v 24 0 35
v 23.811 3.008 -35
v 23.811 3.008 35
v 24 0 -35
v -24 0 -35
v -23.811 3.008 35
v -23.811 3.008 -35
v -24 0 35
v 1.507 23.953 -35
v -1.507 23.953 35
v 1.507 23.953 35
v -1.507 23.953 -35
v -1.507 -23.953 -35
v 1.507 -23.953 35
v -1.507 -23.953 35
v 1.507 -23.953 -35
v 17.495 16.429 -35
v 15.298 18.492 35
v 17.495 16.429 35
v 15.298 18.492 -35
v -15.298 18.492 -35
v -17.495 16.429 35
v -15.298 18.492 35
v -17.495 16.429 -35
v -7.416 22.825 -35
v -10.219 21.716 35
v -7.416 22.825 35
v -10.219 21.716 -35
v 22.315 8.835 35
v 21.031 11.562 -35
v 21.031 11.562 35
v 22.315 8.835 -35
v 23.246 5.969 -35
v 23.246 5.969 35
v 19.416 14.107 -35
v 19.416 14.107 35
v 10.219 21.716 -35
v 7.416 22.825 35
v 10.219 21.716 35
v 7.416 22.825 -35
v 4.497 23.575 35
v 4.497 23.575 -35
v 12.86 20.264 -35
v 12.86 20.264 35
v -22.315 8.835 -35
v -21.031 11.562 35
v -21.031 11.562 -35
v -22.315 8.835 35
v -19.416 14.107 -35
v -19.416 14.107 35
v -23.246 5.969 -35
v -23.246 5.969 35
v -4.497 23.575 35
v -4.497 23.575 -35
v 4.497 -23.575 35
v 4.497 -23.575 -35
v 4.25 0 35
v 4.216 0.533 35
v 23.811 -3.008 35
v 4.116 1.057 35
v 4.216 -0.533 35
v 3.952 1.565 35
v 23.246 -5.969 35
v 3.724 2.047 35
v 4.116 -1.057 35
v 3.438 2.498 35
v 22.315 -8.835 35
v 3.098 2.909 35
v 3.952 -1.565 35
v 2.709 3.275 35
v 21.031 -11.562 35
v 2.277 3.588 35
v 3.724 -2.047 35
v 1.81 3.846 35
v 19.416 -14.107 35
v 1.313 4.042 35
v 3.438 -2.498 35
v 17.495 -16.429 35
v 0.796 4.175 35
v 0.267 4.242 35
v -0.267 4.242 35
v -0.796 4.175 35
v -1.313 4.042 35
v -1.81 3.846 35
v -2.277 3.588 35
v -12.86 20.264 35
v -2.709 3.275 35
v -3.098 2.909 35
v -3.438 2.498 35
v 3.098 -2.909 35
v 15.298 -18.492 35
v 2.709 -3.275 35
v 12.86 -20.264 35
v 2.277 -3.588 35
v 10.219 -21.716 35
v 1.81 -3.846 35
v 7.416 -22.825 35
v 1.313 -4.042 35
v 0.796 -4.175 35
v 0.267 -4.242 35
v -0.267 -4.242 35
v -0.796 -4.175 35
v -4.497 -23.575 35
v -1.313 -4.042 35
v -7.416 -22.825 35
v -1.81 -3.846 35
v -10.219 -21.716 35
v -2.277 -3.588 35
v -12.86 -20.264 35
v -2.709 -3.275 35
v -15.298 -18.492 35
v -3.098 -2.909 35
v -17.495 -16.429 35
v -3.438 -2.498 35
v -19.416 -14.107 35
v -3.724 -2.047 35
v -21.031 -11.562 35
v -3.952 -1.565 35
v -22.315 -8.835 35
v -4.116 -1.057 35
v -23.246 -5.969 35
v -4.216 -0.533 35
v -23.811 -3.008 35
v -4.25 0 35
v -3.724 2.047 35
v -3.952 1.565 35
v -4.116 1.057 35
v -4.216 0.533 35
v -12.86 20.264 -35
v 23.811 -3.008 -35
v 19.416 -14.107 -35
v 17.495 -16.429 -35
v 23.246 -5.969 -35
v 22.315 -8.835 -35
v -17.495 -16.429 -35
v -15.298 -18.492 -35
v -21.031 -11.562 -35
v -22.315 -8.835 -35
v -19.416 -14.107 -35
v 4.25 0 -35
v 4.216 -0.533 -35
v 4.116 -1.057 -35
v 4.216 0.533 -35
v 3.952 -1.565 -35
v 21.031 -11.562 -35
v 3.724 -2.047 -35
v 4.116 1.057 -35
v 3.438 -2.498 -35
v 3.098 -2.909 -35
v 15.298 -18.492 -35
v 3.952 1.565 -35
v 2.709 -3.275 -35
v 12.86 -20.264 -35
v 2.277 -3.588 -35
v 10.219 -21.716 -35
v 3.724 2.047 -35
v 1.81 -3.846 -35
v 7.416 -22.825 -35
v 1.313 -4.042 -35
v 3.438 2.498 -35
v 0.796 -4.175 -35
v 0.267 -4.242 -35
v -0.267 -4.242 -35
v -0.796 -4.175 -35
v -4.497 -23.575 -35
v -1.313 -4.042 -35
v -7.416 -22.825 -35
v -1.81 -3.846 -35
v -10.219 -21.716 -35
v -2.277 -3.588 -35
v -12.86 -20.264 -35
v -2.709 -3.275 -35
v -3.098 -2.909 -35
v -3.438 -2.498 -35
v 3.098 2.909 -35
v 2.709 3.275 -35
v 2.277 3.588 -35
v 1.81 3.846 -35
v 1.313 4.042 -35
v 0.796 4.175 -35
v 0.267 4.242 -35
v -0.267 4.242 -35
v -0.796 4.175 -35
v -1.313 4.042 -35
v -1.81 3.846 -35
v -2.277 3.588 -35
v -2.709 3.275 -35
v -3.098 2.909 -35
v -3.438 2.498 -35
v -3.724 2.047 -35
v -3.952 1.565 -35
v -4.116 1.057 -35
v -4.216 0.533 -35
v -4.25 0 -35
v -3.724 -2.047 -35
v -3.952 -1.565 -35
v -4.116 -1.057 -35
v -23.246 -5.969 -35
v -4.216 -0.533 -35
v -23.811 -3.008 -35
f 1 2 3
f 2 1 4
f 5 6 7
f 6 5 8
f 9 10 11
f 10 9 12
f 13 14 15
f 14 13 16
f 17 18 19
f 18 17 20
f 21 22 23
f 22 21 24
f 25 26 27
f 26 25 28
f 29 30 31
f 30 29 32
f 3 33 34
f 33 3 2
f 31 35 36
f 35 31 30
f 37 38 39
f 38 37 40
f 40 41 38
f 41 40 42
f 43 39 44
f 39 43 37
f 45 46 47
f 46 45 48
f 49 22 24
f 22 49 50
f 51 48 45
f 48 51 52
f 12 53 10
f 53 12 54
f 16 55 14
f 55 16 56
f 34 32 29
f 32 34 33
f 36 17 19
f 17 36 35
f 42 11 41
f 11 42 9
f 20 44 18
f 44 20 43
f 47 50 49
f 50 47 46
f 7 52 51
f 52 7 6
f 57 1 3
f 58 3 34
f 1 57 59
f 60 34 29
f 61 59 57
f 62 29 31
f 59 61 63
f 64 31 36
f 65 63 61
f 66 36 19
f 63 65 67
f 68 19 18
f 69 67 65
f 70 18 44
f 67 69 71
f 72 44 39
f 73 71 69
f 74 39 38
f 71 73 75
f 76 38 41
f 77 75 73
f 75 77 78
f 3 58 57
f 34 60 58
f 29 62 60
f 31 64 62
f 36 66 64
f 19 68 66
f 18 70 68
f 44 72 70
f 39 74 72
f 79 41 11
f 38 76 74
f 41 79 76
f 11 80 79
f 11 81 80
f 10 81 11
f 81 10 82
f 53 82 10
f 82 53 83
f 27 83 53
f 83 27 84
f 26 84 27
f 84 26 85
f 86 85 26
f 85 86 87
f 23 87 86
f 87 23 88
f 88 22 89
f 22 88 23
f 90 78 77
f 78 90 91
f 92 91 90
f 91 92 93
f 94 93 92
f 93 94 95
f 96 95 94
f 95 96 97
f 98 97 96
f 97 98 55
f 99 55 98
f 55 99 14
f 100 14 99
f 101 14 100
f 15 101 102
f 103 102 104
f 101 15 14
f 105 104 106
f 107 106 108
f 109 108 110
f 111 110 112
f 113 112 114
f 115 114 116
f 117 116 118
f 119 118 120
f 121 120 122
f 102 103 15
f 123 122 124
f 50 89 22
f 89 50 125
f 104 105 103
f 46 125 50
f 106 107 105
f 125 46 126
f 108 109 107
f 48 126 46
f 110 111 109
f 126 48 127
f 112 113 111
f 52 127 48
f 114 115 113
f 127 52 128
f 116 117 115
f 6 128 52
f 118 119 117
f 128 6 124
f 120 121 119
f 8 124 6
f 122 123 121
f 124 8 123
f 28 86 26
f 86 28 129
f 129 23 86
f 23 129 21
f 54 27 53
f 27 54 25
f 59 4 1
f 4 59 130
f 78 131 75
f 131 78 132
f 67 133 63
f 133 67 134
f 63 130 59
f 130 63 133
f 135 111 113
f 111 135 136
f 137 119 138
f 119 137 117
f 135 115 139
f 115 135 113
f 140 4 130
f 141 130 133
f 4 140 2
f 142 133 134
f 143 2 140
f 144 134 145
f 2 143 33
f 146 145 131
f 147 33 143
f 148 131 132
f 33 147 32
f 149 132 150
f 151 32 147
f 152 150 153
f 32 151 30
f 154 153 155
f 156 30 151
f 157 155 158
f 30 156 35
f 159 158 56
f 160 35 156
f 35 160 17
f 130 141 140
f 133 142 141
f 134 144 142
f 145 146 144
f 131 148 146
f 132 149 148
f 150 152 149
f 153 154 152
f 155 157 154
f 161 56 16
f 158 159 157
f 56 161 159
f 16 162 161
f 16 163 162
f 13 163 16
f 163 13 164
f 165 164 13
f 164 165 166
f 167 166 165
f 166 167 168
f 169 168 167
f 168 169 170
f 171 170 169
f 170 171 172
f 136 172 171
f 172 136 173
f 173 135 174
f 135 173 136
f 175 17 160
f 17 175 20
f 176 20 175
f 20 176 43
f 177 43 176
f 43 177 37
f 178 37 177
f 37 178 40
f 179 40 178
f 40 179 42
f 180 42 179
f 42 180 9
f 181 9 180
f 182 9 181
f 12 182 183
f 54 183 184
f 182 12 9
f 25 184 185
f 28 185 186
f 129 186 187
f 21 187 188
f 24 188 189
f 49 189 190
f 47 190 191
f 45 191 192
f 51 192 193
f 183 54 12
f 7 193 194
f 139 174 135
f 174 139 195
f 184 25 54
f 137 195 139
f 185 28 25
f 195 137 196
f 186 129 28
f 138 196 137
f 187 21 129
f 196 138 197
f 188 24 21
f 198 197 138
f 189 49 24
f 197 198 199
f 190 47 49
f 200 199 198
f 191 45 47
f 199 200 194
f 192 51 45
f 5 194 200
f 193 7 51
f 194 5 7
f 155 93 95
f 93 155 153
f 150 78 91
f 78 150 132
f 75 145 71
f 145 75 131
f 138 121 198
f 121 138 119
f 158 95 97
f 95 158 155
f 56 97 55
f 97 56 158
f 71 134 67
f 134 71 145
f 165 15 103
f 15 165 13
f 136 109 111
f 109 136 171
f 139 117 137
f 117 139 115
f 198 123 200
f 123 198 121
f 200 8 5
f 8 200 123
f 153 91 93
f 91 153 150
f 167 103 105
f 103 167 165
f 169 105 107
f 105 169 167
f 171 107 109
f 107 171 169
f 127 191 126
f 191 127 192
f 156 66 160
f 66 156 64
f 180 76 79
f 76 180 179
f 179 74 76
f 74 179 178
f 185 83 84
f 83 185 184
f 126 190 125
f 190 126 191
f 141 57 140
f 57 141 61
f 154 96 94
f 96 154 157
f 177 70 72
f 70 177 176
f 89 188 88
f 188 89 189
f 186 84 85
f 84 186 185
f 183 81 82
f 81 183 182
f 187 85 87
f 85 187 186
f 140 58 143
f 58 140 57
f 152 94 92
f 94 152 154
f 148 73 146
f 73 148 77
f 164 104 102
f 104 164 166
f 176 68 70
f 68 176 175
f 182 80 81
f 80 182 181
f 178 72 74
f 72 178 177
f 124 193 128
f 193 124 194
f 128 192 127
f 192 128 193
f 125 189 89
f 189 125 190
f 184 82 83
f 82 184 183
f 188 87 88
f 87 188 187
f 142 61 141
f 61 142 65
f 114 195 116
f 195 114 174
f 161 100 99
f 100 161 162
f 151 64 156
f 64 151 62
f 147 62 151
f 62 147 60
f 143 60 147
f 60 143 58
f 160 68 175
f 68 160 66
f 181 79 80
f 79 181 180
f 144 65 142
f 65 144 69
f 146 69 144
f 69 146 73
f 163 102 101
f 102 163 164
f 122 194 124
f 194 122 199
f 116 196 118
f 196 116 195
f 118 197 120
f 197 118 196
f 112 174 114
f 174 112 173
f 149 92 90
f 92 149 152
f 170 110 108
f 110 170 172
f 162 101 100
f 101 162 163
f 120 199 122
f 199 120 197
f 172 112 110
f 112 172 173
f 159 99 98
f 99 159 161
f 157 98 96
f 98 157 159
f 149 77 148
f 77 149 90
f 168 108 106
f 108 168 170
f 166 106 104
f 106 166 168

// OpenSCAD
$fn = 50;


difference() {
	union() {
		translate(v = [0, 0, -35.0000000000]) {
			cylinder(h = 70, r = 24.0000000000);
		}
	}
	union() {
		translate(v = [0, 0, -100.0000000000]) {
			cylinder(h = 200, r = 4.2500000000);
		}
	}
}
